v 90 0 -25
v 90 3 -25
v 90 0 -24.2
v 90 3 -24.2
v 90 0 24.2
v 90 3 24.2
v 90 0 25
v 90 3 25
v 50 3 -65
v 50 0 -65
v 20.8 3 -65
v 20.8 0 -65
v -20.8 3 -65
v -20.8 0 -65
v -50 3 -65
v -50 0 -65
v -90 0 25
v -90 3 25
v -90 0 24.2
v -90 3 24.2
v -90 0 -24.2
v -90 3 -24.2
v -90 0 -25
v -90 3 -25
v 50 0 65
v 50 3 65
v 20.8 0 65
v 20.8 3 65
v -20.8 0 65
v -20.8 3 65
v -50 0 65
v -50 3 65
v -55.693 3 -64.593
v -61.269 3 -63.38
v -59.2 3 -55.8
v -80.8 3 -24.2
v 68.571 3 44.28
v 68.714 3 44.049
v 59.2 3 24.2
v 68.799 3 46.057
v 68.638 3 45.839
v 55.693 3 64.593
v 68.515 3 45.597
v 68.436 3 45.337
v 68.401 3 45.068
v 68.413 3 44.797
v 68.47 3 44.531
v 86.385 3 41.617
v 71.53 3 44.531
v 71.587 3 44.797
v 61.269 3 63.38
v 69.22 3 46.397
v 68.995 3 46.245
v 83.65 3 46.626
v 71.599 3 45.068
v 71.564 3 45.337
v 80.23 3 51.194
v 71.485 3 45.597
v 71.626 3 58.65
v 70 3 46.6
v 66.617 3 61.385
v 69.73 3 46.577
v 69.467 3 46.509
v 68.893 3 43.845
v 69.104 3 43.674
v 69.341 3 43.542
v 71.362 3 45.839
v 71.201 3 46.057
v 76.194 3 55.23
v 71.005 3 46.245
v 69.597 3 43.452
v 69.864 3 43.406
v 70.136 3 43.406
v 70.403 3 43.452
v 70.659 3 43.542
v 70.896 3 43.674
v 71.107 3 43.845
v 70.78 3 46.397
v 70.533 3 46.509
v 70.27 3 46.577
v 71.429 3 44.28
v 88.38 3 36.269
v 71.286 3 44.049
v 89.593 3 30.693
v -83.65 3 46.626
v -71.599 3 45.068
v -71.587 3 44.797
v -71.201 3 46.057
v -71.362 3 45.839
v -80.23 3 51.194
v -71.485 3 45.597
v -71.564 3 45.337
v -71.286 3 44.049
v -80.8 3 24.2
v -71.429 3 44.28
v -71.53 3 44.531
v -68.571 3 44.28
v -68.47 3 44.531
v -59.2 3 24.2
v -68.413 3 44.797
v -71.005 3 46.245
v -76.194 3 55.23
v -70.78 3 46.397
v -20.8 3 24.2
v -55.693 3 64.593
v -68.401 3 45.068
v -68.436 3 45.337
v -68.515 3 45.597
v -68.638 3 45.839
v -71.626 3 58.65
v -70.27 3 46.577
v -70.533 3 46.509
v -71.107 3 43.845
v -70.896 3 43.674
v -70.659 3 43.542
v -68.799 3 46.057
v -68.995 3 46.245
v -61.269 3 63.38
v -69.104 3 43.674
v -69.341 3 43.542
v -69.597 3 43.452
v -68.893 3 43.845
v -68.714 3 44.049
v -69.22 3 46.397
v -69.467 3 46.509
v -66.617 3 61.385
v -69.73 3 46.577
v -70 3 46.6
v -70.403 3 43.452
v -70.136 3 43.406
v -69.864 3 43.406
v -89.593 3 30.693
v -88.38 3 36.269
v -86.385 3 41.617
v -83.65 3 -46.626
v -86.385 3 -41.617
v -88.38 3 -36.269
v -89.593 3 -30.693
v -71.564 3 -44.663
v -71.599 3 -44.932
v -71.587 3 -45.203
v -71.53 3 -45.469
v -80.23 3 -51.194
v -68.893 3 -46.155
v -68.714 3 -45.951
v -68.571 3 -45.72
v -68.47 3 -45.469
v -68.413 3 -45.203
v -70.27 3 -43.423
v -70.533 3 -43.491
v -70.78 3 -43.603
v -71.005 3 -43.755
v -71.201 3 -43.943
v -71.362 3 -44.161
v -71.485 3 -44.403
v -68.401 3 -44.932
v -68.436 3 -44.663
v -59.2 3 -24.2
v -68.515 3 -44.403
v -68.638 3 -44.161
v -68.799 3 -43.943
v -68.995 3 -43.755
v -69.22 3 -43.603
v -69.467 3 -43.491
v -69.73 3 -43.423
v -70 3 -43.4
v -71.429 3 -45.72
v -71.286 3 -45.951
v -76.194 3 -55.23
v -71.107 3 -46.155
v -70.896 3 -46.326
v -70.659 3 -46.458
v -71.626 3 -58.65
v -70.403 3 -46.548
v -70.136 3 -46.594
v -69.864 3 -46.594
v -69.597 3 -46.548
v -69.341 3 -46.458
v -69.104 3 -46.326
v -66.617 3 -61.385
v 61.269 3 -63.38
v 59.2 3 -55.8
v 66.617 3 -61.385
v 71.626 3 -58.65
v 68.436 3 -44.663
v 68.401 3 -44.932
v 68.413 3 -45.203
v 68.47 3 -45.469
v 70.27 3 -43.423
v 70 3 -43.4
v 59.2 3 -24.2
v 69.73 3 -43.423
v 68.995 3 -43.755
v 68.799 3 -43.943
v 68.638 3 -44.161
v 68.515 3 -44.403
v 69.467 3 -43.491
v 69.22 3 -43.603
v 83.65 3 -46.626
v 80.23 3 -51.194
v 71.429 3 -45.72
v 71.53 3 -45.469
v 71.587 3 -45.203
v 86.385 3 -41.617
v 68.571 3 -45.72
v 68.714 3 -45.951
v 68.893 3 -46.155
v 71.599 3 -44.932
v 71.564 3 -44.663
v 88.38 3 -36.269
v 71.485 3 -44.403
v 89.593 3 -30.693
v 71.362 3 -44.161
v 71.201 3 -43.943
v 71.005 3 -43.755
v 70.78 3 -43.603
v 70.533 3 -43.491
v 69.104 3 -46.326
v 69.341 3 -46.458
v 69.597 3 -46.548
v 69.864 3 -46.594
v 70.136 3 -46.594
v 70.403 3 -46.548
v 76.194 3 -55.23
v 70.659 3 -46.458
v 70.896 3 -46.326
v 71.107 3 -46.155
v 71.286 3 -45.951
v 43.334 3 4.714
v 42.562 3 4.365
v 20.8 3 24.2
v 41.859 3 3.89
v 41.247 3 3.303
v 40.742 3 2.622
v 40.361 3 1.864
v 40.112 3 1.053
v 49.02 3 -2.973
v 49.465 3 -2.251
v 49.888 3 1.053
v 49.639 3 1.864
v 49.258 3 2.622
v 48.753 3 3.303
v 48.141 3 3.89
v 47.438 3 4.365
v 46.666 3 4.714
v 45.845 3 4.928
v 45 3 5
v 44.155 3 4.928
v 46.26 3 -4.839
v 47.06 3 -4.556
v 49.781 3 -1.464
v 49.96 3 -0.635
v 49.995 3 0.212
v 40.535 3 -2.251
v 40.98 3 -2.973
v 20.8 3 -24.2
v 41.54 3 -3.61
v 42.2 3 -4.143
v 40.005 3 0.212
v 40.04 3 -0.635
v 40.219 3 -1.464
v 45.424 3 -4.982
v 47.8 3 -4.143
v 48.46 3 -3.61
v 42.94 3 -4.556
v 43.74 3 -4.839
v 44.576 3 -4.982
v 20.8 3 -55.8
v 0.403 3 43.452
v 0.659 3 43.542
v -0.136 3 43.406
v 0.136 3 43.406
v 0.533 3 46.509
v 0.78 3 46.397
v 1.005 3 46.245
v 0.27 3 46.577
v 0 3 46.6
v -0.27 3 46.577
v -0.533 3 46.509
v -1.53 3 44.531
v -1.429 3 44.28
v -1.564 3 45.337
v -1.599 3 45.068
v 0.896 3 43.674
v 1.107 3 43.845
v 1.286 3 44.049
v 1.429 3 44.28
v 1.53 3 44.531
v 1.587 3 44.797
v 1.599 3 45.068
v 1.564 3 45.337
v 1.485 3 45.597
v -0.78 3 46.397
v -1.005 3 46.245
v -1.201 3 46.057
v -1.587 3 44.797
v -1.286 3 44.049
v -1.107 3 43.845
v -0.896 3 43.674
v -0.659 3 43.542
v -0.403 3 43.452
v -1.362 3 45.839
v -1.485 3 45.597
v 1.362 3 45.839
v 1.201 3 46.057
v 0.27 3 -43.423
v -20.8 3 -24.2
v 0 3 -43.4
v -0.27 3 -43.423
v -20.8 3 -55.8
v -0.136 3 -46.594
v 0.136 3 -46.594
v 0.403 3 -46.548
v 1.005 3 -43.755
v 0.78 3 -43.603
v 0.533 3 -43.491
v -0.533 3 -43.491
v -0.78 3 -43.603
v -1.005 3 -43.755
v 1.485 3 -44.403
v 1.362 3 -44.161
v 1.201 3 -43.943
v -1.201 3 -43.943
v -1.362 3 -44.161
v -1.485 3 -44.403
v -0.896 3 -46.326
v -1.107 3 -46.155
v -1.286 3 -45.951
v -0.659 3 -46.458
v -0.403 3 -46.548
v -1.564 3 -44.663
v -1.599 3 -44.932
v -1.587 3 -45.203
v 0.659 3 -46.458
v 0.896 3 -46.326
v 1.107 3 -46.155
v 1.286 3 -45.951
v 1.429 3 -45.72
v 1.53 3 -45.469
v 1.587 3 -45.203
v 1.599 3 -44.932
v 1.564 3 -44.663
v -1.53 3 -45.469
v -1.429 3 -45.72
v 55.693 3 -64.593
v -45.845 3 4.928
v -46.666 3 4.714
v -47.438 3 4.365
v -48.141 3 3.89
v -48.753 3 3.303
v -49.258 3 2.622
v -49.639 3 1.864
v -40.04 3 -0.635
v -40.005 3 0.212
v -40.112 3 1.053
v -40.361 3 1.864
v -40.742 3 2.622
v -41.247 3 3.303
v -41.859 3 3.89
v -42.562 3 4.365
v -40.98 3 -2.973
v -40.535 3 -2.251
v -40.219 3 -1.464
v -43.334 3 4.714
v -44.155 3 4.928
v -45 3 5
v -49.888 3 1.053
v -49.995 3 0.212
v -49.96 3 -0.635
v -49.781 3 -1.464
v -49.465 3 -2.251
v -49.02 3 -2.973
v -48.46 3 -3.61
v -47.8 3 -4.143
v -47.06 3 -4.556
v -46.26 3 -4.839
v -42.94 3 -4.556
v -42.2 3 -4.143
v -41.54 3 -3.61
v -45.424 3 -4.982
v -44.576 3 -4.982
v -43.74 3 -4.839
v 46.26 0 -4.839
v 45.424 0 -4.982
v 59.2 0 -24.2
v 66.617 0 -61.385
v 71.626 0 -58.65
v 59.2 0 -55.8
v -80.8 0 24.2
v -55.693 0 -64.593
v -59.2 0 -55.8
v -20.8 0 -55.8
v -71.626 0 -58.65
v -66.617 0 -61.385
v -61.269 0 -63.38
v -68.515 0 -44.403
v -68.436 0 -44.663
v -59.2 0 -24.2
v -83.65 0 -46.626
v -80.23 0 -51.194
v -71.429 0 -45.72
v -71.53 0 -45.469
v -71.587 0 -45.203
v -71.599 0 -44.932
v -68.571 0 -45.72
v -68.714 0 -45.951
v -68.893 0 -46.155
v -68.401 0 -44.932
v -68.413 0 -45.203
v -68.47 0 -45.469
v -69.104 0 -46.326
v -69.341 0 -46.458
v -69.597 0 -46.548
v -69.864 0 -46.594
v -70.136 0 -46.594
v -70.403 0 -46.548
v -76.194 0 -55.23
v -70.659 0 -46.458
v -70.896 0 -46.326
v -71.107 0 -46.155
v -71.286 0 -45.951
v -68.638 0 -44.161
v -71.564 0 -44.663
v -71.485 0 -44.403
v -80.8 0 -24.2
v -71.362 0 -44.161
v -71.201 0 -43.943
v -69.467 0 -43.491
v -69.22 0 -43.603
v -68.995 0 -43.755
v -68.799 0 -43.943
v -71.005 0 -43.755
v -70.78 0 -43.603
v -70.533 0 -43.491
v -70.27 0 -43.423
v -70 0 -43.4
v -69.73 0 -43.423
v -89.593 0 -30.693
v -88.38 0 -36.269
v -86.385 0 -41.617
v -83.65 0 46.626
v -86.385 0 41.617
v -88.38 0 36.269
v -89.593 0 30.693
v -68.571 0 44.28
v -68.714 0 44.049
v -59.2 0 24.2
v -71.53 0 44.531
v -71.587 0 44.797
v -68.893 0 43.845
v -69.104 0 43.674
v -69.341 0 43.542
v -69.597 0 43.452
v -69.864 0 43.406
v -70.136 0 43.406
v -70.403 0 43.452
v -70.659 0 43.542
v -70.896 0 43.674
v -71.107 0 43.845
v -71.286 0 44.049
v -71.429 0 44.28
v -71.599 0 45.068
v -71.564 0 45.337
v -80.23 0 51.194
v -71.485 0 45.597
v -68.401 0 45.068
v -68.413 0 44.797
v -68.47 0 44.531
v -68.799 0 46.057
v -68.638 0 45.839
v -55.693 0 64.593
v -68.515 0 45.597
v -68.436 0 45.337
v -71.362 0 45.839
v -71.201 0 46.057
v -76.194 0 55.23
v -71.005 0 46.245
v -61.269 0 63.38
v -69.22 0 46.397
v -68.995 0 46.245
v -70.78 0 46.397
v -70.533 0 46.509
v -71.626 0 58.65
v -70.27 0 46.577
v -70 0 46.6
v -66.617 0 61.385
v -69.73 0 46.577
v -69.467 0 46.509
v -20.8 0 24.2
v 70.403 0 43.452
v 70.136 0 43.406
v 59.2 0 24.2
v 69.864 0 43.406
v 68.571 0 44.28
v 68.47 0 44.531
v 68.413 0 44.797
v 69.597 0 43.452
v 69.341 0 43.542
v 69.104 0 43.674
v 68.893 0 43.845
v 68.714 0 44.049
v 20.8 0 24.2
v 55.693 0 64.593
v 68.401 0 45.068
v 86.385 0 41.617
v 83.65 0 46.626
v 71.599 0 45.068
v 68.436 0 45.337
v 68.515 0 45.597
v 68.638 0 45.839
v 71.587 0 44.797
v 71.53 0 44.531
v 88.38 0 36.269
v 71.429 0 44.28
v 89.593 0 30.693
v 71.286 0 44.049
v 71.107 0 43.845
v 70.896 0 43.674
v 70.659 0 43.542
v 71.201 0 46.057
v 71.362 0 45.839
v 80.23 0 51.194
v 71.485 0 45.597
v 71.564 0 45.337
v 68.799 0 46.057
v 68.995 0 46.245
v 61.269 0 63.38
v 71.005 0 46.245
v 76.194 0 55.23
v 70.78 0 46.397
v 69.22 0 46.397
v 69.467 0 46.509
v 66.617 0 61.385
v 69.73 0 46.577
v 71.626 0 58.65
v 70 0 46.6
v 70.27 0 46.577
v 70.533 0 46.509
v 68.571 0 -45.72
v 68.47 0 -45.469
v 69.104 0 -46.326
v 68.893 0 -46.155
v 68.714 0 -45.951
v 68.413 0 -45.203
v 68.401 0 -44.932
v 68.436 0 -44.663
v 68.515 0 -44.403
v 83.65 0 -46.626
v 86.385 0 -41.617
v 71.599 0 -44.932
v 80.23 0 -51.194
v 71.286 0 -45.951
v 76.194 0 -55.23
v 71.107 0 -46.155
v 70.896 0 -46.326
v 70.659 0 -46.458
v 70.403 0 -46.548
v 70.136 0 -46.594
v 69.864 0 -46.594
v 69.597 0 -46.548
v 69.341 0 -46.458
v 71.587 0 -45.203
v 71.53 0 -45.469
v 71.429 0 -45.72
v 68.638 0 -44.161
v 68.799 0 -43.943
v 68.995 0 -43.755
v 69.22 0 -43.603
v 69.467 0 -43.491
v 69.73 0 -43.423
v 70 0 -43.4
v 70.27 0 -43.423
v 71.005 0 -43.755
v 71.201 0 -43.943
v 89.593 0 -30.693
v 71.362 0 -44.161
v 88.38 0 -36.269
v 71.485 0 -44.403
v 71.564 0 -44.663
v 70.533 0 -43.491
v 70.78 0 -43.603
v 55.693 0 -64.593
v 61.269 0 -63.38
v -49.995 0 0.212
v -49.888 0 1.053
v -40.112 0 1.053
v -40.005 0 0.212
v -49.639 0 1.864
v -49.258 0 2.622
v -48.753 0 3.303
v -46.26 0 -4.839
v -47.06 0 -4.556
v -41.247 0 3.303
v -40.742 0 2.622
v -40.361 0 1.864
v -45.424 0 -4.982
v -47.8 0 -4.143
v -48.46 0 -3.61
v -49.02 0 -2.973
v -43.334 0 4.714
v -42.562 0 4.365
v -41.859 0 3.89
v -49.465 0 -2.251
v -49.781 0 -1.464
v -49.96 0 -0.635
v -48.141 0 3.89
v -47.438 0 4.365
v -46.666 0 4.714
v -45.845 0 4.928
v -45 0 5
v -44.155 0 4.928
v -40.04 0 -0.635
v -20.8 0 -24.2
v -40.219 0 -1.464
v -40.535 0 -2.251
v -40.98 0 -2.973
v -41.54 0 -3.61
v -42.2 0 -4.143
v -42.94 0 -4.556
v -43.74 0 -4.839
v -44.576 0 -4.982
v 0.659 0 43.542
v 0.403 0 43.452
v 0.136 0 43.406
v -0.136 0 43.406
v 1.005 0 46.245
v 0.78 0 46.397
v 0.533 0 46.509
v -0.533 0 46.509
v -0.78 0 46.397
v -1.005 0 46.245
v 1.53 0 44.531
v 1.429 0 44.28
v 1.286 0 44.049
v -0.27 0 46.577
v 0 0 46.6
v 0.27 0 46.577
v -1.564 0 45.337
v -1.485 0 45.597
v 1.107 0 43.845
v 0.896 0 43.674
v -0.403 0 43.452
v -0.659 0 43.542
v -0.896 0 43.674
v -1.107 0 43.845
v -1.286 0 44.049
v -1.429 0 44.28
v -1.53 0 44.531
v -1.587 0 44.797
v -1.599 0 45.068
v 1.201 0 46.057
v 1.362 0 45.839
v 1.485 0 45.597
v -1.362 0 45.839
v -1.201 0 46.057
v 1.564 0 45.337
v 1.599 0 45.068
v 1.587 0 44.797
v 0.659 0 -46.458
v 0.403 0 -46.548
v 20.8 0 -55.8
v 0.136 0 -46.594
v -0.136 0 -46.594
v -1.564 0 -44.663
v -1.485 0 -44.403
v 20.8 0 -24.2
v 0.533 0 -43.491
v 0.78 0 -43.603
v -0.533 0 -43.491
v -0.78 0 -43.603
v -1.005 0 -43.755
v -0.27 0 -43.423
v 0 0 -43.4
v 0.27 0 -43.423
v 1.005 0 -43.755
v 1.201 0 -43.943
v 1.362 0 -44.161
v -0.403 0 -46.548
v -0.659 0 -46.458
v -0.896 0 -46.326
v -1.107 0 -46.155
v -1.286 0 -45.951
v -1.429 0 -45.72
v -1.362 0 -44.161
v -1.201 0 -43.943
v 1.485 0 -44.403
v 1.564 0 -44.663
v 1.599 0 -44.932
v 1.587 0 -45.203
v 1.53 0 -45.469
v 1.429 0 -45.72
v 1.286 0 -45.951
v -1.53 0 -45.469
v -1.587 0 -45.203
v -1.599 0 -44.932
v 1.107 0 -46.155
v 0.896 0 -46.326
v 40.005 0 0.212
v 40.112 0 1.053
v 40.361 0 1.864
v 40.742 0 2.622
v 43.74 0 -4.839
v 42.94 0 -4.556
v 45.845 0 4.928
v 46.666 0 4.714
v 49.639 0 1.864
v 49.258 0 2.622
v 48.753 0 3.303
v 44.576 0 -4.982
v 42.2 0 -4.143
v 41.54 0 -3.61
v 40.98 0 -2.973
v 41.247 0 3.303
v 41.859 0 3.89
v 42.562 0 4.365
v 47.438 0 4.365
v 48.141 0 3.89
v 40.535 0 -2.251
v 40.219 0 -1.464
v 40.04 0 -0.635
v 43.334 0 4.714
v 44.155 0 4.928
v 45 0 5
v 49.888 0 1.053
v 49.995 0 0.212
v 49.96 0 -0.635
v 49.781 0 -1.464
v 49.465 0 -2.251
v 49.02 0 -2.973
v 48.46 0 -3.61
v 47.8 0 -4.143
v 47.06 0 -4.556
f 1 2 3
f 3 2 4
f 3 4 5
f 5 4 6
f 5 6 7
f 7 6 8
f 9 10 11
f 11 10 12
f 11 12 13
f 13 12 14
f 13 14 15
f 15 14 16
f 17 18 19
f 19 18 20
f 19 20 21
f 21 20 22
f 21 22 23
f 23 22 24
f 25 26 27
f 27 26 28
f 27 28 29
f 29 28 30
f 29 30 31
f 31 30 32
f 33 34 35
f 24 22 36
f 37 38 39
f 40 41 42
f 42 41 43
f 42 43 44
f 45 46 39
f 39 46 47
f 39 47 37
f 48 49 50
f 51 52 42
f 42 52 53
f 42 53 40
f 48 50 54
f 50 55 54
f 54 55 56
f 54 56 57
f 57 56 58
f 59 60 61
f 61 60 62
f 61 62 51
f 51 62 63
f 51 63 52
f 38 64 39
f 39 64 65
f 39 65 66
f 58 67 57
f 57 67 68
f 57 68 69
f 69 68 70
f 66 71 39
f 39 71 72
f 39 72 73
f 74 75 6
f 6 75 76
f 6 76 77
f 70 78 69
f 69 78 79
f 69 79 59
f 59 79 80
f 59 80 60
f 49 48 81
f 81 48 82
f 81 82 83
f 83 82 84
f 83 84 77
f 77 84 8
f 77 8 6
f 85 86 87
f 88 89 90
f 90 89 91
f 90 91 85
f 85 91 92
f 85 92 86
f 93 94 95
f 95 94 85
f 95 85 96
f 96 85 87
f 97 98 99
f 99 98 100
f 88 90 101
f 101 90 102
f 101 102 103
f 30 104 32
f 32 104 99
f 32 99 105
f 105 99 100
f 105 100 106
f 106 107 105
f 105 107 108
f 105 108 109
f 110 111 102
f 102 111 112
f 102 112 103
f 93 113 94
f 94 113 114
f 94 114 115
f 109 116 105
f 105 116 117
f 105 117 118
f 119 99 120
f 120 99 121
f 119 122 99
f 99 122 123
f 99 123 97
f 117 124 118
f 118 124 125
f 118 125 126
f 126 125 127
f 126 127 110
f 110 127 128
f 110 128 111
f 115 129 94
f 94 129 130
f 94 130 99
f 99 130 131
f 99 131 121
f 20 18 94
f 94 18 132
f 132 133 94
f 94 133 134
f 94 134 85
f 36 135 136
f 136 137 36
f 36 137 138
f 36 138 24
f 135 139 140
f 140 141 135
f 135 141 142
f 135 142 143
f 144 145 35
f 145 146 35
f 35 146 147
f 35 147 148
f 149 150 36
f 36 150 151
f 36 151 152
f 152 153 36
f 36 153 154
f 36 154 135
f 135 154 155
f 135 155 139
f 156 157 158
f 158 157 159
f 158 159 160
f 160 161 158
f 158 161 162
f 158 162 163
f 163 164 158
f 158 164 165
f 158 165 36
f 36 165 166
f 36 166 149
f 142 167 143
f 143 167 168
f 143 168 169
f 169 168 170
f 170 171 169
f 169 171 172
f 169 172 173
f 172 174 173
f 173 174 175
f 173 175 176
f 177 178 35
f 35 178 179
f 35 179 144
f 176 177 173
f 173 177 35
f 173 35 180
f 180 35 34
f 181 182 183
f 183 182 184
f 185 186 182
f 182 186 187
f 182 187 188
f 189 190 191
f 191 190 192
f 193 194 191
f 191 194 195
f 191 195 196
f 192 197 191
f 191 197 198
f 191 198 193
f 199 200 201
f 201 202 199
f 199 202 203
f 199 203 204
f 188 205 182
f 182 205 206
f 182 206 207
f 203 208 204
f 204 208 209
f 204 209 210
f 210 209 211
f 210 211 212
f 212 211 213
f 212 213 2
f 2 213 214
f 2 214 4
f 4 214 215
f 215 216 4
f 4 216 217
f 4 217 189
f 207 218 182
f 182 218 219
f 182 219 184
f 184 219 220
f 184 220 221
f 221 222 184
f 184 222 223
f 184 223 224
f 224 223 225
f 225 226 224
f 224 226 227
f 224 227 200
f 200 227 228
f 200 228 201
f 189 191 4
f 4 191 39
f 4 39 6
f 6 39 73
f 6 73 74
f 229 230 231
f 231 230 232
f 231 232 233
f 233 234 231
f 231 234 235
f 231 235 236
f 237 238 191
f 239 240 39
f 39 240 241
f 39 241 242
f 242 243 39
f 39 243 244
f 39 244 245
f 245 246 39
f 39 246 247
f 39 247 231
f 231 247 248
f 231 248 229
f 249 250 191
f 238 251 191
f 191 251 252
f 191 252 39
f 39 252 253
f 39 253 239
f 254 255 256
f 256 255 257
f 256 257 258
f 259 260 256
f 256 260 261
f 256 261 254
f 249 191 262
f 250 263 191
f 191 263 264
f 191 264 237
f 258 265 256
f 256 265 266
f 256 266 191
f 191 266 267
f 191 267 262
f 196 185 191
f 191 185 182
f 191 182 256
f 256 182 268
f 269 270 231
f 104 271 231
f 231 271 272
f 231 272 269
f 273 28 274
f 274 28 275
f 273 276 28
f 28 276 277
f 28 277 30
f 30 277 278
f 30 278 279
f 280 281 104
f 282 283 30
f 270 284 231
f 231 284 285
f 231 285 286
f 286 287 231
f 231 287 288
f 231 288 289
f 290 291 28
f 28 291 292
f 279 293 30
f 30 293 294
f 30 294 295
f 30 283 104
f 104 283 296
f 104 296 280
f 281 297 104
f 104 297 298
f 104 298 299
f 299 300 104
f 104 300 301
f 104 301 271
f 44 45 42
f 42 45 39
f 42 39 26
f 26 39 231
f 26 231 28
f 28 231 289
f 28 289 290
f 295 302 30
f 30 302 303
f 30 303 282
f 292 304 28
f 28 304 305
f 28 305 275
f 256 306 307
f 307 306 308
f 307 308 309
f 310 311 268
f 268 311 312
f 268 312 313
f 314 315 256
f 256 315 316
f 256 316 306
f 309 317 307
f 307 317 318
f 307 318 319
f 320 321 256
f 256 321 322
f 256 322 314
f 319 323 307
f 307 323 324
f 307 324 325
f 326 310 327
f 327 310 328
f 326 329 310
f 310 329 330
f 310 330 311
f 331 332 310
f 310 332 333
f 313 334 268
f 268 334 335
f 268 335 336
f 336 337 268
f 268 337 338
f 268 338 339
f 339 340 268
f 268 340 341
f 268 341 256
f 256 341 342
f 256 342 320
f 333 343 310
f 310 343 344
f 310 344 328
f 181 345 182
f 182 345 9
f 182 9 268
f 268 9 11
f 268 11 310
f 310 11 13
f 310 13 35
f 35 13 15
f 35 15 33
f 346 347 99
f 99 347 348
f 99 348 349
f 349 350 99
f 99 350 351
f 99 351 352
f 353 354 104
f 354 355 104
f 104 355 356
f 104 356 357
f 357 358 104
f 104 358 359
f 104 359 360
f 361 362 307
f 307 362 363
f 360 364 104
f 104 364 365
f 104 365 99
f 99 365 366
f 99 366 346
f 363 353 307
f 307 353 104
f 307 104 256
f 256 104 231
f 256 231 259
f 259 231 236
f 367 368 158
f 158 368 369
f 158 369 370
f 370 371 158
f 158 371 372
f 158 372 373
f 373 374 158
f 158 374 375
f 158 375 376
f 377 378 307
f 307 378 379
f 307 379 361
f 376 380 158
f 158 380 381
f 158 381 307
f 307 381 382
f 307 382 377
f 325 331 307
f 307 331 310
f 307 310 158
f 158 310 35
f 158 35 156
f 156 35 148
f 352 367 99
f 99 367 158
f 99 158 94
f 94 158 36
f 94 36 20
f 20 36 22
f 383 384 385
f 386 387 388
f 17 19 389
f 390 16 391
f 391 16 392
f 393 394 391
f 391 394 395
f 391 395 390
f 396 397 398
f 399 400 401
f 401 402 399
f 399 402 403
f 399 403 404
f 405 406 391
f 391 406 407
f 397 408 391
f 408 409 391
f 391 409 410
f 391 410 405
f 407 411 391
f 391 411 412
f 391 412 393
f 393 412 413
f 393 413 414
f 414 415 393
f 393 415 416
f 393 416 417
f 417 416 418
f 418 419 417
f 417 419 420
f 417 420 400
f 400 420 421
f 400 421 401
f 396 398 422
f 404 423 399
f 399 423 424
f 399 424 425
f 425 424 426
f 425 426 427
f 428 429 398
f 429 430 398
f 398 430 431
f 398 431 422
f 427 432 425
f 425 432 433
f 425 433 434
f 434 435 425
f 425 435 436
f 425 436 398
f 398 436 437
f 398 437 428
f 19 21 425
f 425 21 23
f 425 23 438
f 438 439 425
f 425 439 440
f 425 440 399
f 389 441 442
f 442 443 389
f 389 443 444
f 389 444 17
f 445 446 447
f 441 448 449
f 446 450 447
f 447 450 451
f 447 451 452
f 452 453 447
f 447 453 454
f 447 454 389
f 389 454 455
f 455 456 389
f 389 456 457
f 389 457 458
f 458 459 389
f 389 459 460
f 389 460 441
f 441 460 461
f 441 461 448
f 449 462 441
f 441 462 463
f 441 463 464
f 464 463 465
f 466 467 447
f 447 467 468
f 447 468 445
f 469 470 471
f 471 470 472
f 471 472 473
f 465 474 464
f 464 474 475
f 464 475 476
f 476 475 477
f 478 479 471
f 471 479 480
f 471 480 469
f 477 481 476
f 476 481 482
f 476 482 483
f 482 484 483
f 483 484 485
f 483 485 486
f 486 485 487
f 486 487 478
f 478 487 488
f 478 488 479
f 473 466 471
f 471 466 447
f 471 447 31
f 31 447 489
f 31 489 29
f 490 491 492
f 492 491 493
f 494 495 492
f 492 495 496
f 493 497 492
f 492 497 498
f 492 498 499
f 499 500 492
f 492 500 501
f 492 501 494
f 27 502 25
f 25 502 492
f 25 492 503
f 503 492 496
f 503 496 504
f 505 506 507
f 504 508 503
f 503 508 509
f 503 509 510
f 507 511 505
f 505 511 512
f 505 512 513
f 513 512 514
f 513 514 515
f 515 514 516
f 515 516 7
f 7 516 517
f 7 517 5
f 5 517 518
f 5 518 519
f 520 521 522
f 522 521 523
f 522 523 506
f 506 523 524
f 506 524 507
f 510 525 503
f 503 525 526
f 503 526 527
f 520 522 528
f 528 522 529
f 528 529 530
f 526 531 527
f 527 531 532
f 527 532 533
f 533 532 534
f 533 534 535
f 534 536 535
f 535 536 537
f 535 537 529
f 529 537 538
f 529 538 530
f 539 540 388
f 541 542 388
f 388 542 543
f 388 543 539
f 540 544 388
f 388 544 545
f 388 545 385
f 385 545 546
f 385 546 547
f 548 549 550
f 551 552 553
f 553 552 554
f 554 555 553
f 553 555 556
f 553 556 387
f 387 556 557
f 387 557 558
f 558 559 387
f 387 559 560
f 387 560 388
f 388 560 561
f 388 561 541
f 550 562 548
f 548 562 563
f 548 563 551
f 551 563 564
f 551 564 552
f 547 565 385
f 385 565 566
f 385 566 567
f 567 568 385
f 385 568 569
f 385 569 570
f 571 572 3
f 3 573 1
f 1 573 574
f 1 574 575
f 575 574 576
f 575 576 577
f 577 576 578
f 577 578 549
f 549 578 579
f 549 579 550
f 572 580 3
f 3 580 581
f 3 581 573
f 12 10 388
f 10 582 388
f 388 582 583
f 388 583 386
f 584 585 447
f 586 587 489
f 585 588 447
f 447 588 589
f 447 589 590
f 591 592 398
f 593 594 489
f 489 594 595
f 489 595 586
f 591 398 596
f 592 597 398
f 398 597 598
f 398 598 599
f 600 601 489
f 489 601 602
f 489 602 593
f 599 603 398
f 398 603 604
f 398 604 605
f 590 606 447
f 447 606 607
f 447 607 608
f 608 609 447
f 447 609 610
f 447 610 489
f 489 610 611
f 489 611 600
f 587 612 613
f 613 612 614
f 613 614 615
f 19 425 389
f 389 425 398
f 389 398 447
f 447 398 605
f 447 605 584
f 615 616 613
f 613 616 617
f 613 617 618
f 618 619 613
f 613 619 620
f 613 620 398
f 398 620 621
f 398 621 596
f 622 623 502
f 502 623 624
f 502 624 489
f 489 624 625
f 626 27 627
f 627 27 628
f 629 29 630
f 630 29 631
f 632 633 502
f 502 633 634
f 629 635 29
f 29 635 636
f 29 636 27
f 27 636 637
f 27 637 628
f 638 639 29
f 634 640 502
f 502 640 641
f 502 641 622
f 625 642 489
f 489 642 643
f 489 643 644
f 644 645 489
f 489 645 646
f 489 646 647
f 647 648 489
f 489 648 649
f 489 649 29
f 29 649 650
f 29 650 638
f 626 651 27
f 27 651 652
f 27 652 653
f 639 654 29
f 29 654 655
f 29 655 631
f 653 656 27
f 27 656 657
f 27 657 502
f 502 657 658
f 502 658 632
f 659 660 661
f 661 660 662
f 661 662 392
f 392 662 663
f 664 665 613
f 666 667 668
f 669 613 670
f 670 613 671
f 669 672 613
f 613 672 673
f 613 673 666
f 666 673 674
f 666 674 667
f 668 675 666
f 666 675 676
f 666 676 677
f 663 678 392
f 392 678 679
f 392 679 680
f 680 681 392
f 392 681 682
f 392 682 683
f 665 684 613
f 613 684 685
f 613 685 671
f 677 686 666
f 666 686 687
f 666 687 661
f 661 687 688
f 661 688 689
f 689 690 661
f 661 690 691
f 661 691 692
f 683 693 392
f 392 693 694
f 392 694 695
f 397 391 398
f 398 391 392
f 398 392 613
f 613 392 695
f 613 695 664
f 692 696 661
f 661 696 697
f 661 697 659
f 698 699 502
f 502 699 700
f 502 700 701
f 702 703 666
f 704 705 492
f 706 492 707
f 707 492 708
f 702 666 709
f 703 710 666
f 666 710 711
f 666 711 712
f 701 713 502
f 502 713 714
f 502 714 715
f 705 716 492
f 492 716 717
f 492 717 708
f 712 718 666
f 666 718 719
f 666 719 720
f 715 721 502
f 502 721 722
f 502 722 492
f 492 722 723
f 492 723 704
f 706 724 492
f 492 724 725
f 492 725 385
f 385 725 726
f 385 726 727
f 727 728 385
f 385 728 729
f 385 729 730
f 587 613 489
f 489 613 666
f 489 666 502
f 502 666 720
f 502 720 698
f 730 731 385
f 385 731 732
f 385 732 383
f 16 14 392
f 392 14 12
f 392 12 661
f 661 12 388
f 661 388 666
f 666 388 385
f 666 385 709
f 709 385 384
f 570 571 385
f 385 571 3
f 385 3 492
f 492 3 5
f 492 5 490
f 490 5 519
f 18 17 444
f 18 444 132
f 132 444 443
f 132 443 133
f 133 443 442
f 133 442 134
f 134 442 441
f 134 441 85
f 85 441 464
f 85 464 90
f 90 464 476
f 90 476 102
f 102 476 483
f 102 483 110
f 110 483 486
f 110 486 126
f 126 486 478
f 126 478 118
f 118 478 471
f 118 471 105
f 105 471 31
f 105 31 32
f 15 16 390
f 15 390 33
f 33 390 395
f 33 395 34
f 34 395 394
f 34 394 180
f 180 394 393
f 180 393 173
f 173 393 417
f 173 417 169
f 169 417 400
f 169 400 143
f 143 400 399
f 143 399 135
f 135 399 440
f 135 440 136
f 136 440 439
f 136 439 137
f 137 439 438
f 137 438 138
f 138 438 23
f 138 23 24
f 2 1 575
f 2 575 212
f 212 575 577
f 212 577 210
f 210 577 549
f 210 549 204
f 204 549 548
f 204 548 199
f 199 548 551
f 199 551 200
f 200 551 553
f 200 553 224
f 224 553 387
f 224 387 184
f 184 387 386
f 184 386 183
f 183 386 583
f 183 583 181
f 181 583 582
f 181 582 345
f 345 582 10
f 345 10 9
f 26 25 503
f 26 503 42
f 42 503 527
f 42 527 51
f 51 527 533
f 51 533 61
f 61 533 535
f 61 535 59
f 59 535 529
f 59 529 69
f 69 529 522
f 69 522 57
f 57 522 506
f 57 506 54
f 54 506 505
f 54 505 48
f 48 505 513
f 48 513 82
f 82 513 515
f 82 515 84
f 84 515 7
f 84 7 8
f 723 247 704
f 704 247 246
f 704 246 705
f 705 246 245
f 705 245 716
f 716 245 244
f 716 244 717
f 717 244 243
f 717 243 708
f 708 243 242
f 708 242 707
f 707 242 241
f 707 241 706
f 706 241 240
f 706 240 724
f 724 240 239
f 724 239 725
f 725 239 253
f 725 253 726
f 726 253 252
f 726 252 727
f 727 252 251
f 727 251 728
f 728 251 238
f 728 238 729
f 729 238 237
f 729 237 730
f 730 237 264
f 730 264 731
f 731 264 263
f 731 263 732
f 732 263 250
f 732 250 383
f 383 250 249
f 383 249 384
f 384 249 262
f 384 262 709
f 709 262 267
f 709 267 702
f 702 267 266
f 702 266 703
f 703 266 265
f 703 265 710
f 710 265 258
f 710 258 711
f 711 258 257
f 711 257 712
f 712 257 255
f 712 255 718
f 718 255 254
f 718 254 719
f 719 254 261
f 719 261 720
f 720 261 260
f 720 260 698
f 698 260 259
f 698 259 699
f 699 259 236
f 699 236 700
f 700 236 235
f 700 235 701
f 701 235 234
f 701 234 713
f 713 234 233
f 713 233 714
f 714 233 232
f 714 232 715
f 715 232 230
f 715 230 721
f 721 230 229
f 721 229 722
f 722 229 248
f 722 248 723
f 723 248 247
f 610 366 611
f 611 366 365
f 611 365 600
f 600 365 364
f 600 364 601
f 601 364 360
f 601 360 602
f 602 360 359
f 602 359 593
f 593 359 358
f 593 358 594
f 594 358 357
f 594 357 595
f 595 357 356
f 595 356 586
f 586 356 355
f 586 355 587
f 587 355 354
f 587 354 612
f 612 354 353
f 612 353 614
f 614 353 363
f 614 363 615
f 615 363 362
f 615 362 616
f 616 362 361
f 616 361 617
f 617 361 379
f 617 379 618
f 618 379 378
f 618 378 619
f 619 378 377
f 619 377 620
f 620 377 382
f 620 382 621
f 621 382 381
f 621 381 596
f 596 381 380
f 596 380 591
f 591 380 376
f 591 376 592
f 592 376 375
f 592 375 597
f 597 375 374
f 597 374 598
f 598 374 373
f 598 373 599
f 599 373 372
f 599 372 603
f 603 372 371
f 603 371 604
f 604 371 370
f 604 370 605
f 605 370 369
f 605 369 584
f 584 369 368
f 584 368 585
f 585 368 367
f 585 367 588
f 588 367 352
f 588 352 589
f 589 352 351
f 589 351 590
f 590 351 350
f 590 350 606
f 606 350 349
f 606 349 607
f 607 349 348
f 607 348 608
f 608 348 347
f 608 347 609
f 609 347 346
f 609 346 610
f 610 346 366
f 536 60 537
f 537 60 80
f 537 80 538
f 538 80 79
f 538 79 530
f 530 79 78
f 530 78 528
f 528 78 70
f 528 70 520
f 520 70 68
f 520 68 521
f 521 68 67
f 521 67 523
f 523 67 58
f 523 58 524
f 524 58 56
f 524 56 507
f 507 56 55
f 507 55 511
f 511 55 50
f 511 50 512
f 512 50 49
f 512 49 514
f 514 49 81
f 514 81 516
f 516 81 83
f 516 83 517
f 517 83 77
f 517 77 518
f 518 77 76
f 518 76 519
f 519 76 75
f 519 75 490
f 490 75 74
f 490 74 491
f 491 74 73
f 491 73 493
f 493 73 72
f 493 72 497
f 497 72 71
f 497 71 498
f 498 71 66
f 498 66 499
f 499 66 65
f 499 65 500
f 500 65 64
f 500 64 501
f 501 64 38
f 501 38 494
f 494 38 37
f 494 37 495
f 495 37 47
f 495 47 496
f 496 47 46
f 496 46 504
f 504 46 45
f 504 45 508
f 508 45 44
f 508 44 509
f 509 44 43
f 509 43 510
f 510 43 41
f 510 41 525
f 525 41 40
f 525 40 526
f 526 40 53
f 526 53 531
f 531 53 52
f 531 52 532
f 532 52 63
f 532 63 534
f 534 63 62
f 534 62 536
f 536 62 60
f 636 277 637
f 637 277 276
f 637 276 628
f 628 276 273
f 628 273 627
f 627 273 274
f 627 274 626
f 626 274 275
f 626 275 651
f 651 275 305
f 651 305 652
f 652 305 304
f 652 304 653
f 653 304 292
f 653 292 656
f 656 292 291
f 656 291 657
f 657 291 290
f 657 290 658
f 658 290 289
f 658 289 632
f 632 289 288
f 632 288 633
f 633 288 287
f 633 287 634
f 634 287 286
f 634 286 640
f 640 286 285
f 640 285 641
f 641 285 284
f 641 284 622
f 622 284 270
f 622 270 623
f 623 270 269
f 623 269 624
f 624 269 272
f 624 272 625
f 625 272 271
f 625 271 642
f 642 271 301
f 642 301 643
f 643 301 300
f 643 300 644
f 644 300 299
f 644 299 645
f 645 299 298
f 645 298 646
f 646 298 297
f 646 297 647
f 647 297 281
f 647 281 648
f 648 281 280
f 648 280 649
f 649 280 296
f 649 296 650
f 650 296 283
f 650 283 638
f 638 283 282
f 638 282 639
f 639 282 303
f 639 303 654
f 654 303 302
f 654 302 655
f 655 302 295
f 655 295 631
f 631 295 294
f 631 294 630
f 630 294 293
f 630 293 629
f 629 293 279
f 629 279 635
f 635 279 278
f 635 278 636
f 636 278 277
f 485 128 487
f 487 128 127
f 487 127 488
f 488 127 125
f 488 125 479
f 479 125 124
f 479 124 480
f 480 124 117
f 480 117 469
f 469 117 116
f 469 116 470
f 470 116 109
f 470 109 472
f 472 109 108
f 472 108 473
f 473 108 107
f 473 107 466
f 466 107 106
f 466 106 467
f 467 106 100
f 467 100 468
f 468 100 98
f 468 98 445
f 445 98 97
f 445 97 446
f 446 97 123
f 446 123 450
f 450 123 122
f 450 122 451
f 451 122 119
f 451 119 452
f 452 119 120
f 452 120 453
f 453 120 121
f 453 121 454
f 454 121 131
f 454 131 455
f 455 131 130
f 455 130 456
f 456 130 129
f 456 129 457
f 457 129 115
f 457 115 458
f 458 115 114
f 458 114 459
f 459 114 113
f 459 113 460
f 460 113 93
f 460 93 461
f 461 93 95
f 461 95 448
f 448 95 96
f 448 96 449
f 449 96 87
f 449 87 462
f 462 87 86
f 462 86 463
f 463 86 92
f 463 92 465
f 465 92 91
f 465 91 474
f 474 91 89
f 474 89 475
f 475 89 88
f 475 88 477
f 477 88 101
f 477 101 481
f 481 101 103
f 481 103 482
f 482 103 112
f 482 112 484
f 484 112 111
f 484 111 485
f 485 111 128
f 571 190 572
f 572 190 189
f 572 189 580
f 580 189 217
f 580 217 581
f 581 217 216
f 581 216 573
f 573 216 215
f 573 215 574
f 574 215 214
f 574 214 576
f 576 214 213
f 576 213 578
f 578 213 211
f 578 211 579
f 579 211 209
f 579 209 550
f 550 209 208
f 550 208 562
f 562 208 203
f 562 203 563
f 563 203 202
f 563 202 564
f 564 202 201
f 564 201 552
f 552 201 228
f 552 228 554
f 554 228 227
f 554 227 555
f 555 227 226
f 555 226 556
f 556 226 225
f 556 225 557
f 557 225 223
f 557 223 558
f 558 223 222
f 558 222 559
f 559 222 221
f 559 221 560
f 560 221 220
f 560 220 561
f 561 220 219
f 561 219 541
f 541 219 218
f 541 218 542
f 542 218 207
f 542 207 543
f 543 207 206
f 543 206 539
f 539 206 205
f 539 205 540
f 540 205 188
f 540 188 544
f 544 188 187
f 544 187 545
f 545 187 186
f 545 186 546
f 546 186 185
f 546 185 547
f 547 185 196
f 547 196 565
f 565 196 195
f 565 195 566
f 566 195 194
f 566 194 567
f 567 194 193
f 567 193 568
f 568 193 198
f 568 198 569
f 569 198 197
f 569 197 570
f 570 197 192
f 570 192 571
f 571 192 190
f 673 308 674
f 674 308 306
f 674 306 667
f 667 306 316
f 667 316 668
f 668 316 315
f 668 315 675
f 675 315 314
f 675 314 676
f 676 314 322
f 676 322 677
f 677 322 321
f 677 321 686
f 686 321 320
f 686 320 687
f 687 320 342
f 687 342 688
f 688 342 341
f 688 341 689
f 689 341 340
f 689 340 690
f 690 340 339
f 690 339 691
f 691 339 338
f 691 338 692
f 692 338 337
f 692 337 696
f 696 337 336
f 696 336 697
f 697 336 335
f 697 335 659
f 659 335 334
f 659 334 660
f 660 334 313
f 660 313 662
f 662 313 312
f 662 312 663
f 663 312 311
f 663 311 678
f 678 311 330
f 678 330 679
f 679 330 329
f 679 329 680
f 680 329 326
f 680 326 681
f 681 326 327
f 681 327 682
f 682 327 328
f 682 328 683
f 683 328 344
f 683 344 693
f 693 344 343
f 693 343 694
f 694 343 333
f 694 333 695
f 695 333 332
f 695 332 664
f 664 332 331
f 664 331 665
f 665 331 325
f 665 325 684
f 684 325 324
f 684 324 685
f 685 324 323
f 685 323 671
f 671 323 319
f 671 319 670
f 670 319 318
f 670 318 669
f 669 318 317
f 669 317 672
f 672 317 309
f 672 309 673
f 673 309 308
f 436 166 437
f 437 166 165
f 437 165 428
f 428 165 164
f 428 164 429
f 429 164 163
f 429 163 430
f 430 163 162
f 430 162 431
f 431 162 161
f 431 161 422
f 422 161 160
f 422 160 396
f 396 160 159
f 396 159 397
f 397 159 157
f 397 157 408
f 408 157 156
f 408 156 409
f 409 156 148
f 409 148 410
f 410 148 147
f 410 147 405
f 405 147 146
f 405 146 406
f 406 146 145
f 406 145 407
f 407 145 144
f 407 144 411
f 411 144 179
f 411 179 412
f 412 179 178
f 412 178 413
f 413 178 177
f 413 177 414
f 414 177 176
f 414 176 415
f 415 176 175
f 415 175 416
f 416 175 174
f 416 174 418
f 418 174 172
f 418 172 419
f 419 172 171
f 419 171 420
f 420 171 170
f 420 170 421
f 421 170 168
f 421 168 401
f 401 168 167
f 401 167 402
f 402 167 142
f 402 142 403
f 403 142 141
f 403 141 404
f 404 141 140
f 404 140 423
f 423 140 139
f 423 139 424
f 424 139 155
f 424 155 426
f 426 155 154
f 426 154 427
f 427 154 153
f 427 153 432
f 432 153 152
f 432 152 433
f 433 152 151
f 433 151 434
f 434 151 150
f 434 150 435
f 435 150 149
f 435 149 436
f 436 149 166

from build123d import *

# Parameters (mm, degrees)
SKETCH1_W                  = 180
SKETCH1_H                  = 130
BOSS_EXTRUDE1_DEPTH        = 3
FILLET1_R                  = 40
FILLET2_R                  = 40
F_10_0_10_DIAMETER_HOLE1_D = 10
F_3_2_3_2_DIAMETER_HOLE1_D = 3.2


with BuildPart() as part:
    # Sketch1 → Boss-Extrude1 (new body)
    with BuildSketch(Plane(origin=(0, 0, 0), x_dir=(1, 0, 0), z_dir=(0, 1, 0))):
        Rectangle(SKETCH1_W, SKETCH1_H)
    extrude(amount=BOSS_EXTRUDE1_DEPTH)

    # Fillet1
    fillet1_edges = [part.edges().sort_by_distance(p)[0] for p in [
        (-90, 1.5, 65),
        (-90, 1.5, -65),
    ]]
    fillet(fillet1_edges, radius=FILLET1_R)

    # Fillet2
    fillet2_edges = [part.edges().sort_by_distance(p)[0] for p in [
        (90, 1.5, 65),
        (90, 1.5, -65),
    ]]
    fillet(fillet2_edges, radius=FILLET2_R)

    # Ø10.0 (10) Diameter Hole1 (through all)
    with Locations(Plane(origin=(0, 3, 0), x_dir=(1, 0, 0), z_dir=(0, 1, 0))):
        with Locations((45, 0), (-45, 0)):
            Hole(F_10_0_10_DIAMETER_HOLE1_D / 2)

    # Ø3.2 (3.2) Diameter Hole1 (through all)
    with Locations(Plane(origin=(-70, 3, -45), x_dir=(0, 0, 1), z_dir=(0, 1, 0))):
        with Locations((0, 0), (0, 70), (0, 140), (90, 0), (90, 70), (90, 140)):
            Hole(F_3_2_3_2_DIAMETER_HOLE1_D / 2)


solid = part.part
